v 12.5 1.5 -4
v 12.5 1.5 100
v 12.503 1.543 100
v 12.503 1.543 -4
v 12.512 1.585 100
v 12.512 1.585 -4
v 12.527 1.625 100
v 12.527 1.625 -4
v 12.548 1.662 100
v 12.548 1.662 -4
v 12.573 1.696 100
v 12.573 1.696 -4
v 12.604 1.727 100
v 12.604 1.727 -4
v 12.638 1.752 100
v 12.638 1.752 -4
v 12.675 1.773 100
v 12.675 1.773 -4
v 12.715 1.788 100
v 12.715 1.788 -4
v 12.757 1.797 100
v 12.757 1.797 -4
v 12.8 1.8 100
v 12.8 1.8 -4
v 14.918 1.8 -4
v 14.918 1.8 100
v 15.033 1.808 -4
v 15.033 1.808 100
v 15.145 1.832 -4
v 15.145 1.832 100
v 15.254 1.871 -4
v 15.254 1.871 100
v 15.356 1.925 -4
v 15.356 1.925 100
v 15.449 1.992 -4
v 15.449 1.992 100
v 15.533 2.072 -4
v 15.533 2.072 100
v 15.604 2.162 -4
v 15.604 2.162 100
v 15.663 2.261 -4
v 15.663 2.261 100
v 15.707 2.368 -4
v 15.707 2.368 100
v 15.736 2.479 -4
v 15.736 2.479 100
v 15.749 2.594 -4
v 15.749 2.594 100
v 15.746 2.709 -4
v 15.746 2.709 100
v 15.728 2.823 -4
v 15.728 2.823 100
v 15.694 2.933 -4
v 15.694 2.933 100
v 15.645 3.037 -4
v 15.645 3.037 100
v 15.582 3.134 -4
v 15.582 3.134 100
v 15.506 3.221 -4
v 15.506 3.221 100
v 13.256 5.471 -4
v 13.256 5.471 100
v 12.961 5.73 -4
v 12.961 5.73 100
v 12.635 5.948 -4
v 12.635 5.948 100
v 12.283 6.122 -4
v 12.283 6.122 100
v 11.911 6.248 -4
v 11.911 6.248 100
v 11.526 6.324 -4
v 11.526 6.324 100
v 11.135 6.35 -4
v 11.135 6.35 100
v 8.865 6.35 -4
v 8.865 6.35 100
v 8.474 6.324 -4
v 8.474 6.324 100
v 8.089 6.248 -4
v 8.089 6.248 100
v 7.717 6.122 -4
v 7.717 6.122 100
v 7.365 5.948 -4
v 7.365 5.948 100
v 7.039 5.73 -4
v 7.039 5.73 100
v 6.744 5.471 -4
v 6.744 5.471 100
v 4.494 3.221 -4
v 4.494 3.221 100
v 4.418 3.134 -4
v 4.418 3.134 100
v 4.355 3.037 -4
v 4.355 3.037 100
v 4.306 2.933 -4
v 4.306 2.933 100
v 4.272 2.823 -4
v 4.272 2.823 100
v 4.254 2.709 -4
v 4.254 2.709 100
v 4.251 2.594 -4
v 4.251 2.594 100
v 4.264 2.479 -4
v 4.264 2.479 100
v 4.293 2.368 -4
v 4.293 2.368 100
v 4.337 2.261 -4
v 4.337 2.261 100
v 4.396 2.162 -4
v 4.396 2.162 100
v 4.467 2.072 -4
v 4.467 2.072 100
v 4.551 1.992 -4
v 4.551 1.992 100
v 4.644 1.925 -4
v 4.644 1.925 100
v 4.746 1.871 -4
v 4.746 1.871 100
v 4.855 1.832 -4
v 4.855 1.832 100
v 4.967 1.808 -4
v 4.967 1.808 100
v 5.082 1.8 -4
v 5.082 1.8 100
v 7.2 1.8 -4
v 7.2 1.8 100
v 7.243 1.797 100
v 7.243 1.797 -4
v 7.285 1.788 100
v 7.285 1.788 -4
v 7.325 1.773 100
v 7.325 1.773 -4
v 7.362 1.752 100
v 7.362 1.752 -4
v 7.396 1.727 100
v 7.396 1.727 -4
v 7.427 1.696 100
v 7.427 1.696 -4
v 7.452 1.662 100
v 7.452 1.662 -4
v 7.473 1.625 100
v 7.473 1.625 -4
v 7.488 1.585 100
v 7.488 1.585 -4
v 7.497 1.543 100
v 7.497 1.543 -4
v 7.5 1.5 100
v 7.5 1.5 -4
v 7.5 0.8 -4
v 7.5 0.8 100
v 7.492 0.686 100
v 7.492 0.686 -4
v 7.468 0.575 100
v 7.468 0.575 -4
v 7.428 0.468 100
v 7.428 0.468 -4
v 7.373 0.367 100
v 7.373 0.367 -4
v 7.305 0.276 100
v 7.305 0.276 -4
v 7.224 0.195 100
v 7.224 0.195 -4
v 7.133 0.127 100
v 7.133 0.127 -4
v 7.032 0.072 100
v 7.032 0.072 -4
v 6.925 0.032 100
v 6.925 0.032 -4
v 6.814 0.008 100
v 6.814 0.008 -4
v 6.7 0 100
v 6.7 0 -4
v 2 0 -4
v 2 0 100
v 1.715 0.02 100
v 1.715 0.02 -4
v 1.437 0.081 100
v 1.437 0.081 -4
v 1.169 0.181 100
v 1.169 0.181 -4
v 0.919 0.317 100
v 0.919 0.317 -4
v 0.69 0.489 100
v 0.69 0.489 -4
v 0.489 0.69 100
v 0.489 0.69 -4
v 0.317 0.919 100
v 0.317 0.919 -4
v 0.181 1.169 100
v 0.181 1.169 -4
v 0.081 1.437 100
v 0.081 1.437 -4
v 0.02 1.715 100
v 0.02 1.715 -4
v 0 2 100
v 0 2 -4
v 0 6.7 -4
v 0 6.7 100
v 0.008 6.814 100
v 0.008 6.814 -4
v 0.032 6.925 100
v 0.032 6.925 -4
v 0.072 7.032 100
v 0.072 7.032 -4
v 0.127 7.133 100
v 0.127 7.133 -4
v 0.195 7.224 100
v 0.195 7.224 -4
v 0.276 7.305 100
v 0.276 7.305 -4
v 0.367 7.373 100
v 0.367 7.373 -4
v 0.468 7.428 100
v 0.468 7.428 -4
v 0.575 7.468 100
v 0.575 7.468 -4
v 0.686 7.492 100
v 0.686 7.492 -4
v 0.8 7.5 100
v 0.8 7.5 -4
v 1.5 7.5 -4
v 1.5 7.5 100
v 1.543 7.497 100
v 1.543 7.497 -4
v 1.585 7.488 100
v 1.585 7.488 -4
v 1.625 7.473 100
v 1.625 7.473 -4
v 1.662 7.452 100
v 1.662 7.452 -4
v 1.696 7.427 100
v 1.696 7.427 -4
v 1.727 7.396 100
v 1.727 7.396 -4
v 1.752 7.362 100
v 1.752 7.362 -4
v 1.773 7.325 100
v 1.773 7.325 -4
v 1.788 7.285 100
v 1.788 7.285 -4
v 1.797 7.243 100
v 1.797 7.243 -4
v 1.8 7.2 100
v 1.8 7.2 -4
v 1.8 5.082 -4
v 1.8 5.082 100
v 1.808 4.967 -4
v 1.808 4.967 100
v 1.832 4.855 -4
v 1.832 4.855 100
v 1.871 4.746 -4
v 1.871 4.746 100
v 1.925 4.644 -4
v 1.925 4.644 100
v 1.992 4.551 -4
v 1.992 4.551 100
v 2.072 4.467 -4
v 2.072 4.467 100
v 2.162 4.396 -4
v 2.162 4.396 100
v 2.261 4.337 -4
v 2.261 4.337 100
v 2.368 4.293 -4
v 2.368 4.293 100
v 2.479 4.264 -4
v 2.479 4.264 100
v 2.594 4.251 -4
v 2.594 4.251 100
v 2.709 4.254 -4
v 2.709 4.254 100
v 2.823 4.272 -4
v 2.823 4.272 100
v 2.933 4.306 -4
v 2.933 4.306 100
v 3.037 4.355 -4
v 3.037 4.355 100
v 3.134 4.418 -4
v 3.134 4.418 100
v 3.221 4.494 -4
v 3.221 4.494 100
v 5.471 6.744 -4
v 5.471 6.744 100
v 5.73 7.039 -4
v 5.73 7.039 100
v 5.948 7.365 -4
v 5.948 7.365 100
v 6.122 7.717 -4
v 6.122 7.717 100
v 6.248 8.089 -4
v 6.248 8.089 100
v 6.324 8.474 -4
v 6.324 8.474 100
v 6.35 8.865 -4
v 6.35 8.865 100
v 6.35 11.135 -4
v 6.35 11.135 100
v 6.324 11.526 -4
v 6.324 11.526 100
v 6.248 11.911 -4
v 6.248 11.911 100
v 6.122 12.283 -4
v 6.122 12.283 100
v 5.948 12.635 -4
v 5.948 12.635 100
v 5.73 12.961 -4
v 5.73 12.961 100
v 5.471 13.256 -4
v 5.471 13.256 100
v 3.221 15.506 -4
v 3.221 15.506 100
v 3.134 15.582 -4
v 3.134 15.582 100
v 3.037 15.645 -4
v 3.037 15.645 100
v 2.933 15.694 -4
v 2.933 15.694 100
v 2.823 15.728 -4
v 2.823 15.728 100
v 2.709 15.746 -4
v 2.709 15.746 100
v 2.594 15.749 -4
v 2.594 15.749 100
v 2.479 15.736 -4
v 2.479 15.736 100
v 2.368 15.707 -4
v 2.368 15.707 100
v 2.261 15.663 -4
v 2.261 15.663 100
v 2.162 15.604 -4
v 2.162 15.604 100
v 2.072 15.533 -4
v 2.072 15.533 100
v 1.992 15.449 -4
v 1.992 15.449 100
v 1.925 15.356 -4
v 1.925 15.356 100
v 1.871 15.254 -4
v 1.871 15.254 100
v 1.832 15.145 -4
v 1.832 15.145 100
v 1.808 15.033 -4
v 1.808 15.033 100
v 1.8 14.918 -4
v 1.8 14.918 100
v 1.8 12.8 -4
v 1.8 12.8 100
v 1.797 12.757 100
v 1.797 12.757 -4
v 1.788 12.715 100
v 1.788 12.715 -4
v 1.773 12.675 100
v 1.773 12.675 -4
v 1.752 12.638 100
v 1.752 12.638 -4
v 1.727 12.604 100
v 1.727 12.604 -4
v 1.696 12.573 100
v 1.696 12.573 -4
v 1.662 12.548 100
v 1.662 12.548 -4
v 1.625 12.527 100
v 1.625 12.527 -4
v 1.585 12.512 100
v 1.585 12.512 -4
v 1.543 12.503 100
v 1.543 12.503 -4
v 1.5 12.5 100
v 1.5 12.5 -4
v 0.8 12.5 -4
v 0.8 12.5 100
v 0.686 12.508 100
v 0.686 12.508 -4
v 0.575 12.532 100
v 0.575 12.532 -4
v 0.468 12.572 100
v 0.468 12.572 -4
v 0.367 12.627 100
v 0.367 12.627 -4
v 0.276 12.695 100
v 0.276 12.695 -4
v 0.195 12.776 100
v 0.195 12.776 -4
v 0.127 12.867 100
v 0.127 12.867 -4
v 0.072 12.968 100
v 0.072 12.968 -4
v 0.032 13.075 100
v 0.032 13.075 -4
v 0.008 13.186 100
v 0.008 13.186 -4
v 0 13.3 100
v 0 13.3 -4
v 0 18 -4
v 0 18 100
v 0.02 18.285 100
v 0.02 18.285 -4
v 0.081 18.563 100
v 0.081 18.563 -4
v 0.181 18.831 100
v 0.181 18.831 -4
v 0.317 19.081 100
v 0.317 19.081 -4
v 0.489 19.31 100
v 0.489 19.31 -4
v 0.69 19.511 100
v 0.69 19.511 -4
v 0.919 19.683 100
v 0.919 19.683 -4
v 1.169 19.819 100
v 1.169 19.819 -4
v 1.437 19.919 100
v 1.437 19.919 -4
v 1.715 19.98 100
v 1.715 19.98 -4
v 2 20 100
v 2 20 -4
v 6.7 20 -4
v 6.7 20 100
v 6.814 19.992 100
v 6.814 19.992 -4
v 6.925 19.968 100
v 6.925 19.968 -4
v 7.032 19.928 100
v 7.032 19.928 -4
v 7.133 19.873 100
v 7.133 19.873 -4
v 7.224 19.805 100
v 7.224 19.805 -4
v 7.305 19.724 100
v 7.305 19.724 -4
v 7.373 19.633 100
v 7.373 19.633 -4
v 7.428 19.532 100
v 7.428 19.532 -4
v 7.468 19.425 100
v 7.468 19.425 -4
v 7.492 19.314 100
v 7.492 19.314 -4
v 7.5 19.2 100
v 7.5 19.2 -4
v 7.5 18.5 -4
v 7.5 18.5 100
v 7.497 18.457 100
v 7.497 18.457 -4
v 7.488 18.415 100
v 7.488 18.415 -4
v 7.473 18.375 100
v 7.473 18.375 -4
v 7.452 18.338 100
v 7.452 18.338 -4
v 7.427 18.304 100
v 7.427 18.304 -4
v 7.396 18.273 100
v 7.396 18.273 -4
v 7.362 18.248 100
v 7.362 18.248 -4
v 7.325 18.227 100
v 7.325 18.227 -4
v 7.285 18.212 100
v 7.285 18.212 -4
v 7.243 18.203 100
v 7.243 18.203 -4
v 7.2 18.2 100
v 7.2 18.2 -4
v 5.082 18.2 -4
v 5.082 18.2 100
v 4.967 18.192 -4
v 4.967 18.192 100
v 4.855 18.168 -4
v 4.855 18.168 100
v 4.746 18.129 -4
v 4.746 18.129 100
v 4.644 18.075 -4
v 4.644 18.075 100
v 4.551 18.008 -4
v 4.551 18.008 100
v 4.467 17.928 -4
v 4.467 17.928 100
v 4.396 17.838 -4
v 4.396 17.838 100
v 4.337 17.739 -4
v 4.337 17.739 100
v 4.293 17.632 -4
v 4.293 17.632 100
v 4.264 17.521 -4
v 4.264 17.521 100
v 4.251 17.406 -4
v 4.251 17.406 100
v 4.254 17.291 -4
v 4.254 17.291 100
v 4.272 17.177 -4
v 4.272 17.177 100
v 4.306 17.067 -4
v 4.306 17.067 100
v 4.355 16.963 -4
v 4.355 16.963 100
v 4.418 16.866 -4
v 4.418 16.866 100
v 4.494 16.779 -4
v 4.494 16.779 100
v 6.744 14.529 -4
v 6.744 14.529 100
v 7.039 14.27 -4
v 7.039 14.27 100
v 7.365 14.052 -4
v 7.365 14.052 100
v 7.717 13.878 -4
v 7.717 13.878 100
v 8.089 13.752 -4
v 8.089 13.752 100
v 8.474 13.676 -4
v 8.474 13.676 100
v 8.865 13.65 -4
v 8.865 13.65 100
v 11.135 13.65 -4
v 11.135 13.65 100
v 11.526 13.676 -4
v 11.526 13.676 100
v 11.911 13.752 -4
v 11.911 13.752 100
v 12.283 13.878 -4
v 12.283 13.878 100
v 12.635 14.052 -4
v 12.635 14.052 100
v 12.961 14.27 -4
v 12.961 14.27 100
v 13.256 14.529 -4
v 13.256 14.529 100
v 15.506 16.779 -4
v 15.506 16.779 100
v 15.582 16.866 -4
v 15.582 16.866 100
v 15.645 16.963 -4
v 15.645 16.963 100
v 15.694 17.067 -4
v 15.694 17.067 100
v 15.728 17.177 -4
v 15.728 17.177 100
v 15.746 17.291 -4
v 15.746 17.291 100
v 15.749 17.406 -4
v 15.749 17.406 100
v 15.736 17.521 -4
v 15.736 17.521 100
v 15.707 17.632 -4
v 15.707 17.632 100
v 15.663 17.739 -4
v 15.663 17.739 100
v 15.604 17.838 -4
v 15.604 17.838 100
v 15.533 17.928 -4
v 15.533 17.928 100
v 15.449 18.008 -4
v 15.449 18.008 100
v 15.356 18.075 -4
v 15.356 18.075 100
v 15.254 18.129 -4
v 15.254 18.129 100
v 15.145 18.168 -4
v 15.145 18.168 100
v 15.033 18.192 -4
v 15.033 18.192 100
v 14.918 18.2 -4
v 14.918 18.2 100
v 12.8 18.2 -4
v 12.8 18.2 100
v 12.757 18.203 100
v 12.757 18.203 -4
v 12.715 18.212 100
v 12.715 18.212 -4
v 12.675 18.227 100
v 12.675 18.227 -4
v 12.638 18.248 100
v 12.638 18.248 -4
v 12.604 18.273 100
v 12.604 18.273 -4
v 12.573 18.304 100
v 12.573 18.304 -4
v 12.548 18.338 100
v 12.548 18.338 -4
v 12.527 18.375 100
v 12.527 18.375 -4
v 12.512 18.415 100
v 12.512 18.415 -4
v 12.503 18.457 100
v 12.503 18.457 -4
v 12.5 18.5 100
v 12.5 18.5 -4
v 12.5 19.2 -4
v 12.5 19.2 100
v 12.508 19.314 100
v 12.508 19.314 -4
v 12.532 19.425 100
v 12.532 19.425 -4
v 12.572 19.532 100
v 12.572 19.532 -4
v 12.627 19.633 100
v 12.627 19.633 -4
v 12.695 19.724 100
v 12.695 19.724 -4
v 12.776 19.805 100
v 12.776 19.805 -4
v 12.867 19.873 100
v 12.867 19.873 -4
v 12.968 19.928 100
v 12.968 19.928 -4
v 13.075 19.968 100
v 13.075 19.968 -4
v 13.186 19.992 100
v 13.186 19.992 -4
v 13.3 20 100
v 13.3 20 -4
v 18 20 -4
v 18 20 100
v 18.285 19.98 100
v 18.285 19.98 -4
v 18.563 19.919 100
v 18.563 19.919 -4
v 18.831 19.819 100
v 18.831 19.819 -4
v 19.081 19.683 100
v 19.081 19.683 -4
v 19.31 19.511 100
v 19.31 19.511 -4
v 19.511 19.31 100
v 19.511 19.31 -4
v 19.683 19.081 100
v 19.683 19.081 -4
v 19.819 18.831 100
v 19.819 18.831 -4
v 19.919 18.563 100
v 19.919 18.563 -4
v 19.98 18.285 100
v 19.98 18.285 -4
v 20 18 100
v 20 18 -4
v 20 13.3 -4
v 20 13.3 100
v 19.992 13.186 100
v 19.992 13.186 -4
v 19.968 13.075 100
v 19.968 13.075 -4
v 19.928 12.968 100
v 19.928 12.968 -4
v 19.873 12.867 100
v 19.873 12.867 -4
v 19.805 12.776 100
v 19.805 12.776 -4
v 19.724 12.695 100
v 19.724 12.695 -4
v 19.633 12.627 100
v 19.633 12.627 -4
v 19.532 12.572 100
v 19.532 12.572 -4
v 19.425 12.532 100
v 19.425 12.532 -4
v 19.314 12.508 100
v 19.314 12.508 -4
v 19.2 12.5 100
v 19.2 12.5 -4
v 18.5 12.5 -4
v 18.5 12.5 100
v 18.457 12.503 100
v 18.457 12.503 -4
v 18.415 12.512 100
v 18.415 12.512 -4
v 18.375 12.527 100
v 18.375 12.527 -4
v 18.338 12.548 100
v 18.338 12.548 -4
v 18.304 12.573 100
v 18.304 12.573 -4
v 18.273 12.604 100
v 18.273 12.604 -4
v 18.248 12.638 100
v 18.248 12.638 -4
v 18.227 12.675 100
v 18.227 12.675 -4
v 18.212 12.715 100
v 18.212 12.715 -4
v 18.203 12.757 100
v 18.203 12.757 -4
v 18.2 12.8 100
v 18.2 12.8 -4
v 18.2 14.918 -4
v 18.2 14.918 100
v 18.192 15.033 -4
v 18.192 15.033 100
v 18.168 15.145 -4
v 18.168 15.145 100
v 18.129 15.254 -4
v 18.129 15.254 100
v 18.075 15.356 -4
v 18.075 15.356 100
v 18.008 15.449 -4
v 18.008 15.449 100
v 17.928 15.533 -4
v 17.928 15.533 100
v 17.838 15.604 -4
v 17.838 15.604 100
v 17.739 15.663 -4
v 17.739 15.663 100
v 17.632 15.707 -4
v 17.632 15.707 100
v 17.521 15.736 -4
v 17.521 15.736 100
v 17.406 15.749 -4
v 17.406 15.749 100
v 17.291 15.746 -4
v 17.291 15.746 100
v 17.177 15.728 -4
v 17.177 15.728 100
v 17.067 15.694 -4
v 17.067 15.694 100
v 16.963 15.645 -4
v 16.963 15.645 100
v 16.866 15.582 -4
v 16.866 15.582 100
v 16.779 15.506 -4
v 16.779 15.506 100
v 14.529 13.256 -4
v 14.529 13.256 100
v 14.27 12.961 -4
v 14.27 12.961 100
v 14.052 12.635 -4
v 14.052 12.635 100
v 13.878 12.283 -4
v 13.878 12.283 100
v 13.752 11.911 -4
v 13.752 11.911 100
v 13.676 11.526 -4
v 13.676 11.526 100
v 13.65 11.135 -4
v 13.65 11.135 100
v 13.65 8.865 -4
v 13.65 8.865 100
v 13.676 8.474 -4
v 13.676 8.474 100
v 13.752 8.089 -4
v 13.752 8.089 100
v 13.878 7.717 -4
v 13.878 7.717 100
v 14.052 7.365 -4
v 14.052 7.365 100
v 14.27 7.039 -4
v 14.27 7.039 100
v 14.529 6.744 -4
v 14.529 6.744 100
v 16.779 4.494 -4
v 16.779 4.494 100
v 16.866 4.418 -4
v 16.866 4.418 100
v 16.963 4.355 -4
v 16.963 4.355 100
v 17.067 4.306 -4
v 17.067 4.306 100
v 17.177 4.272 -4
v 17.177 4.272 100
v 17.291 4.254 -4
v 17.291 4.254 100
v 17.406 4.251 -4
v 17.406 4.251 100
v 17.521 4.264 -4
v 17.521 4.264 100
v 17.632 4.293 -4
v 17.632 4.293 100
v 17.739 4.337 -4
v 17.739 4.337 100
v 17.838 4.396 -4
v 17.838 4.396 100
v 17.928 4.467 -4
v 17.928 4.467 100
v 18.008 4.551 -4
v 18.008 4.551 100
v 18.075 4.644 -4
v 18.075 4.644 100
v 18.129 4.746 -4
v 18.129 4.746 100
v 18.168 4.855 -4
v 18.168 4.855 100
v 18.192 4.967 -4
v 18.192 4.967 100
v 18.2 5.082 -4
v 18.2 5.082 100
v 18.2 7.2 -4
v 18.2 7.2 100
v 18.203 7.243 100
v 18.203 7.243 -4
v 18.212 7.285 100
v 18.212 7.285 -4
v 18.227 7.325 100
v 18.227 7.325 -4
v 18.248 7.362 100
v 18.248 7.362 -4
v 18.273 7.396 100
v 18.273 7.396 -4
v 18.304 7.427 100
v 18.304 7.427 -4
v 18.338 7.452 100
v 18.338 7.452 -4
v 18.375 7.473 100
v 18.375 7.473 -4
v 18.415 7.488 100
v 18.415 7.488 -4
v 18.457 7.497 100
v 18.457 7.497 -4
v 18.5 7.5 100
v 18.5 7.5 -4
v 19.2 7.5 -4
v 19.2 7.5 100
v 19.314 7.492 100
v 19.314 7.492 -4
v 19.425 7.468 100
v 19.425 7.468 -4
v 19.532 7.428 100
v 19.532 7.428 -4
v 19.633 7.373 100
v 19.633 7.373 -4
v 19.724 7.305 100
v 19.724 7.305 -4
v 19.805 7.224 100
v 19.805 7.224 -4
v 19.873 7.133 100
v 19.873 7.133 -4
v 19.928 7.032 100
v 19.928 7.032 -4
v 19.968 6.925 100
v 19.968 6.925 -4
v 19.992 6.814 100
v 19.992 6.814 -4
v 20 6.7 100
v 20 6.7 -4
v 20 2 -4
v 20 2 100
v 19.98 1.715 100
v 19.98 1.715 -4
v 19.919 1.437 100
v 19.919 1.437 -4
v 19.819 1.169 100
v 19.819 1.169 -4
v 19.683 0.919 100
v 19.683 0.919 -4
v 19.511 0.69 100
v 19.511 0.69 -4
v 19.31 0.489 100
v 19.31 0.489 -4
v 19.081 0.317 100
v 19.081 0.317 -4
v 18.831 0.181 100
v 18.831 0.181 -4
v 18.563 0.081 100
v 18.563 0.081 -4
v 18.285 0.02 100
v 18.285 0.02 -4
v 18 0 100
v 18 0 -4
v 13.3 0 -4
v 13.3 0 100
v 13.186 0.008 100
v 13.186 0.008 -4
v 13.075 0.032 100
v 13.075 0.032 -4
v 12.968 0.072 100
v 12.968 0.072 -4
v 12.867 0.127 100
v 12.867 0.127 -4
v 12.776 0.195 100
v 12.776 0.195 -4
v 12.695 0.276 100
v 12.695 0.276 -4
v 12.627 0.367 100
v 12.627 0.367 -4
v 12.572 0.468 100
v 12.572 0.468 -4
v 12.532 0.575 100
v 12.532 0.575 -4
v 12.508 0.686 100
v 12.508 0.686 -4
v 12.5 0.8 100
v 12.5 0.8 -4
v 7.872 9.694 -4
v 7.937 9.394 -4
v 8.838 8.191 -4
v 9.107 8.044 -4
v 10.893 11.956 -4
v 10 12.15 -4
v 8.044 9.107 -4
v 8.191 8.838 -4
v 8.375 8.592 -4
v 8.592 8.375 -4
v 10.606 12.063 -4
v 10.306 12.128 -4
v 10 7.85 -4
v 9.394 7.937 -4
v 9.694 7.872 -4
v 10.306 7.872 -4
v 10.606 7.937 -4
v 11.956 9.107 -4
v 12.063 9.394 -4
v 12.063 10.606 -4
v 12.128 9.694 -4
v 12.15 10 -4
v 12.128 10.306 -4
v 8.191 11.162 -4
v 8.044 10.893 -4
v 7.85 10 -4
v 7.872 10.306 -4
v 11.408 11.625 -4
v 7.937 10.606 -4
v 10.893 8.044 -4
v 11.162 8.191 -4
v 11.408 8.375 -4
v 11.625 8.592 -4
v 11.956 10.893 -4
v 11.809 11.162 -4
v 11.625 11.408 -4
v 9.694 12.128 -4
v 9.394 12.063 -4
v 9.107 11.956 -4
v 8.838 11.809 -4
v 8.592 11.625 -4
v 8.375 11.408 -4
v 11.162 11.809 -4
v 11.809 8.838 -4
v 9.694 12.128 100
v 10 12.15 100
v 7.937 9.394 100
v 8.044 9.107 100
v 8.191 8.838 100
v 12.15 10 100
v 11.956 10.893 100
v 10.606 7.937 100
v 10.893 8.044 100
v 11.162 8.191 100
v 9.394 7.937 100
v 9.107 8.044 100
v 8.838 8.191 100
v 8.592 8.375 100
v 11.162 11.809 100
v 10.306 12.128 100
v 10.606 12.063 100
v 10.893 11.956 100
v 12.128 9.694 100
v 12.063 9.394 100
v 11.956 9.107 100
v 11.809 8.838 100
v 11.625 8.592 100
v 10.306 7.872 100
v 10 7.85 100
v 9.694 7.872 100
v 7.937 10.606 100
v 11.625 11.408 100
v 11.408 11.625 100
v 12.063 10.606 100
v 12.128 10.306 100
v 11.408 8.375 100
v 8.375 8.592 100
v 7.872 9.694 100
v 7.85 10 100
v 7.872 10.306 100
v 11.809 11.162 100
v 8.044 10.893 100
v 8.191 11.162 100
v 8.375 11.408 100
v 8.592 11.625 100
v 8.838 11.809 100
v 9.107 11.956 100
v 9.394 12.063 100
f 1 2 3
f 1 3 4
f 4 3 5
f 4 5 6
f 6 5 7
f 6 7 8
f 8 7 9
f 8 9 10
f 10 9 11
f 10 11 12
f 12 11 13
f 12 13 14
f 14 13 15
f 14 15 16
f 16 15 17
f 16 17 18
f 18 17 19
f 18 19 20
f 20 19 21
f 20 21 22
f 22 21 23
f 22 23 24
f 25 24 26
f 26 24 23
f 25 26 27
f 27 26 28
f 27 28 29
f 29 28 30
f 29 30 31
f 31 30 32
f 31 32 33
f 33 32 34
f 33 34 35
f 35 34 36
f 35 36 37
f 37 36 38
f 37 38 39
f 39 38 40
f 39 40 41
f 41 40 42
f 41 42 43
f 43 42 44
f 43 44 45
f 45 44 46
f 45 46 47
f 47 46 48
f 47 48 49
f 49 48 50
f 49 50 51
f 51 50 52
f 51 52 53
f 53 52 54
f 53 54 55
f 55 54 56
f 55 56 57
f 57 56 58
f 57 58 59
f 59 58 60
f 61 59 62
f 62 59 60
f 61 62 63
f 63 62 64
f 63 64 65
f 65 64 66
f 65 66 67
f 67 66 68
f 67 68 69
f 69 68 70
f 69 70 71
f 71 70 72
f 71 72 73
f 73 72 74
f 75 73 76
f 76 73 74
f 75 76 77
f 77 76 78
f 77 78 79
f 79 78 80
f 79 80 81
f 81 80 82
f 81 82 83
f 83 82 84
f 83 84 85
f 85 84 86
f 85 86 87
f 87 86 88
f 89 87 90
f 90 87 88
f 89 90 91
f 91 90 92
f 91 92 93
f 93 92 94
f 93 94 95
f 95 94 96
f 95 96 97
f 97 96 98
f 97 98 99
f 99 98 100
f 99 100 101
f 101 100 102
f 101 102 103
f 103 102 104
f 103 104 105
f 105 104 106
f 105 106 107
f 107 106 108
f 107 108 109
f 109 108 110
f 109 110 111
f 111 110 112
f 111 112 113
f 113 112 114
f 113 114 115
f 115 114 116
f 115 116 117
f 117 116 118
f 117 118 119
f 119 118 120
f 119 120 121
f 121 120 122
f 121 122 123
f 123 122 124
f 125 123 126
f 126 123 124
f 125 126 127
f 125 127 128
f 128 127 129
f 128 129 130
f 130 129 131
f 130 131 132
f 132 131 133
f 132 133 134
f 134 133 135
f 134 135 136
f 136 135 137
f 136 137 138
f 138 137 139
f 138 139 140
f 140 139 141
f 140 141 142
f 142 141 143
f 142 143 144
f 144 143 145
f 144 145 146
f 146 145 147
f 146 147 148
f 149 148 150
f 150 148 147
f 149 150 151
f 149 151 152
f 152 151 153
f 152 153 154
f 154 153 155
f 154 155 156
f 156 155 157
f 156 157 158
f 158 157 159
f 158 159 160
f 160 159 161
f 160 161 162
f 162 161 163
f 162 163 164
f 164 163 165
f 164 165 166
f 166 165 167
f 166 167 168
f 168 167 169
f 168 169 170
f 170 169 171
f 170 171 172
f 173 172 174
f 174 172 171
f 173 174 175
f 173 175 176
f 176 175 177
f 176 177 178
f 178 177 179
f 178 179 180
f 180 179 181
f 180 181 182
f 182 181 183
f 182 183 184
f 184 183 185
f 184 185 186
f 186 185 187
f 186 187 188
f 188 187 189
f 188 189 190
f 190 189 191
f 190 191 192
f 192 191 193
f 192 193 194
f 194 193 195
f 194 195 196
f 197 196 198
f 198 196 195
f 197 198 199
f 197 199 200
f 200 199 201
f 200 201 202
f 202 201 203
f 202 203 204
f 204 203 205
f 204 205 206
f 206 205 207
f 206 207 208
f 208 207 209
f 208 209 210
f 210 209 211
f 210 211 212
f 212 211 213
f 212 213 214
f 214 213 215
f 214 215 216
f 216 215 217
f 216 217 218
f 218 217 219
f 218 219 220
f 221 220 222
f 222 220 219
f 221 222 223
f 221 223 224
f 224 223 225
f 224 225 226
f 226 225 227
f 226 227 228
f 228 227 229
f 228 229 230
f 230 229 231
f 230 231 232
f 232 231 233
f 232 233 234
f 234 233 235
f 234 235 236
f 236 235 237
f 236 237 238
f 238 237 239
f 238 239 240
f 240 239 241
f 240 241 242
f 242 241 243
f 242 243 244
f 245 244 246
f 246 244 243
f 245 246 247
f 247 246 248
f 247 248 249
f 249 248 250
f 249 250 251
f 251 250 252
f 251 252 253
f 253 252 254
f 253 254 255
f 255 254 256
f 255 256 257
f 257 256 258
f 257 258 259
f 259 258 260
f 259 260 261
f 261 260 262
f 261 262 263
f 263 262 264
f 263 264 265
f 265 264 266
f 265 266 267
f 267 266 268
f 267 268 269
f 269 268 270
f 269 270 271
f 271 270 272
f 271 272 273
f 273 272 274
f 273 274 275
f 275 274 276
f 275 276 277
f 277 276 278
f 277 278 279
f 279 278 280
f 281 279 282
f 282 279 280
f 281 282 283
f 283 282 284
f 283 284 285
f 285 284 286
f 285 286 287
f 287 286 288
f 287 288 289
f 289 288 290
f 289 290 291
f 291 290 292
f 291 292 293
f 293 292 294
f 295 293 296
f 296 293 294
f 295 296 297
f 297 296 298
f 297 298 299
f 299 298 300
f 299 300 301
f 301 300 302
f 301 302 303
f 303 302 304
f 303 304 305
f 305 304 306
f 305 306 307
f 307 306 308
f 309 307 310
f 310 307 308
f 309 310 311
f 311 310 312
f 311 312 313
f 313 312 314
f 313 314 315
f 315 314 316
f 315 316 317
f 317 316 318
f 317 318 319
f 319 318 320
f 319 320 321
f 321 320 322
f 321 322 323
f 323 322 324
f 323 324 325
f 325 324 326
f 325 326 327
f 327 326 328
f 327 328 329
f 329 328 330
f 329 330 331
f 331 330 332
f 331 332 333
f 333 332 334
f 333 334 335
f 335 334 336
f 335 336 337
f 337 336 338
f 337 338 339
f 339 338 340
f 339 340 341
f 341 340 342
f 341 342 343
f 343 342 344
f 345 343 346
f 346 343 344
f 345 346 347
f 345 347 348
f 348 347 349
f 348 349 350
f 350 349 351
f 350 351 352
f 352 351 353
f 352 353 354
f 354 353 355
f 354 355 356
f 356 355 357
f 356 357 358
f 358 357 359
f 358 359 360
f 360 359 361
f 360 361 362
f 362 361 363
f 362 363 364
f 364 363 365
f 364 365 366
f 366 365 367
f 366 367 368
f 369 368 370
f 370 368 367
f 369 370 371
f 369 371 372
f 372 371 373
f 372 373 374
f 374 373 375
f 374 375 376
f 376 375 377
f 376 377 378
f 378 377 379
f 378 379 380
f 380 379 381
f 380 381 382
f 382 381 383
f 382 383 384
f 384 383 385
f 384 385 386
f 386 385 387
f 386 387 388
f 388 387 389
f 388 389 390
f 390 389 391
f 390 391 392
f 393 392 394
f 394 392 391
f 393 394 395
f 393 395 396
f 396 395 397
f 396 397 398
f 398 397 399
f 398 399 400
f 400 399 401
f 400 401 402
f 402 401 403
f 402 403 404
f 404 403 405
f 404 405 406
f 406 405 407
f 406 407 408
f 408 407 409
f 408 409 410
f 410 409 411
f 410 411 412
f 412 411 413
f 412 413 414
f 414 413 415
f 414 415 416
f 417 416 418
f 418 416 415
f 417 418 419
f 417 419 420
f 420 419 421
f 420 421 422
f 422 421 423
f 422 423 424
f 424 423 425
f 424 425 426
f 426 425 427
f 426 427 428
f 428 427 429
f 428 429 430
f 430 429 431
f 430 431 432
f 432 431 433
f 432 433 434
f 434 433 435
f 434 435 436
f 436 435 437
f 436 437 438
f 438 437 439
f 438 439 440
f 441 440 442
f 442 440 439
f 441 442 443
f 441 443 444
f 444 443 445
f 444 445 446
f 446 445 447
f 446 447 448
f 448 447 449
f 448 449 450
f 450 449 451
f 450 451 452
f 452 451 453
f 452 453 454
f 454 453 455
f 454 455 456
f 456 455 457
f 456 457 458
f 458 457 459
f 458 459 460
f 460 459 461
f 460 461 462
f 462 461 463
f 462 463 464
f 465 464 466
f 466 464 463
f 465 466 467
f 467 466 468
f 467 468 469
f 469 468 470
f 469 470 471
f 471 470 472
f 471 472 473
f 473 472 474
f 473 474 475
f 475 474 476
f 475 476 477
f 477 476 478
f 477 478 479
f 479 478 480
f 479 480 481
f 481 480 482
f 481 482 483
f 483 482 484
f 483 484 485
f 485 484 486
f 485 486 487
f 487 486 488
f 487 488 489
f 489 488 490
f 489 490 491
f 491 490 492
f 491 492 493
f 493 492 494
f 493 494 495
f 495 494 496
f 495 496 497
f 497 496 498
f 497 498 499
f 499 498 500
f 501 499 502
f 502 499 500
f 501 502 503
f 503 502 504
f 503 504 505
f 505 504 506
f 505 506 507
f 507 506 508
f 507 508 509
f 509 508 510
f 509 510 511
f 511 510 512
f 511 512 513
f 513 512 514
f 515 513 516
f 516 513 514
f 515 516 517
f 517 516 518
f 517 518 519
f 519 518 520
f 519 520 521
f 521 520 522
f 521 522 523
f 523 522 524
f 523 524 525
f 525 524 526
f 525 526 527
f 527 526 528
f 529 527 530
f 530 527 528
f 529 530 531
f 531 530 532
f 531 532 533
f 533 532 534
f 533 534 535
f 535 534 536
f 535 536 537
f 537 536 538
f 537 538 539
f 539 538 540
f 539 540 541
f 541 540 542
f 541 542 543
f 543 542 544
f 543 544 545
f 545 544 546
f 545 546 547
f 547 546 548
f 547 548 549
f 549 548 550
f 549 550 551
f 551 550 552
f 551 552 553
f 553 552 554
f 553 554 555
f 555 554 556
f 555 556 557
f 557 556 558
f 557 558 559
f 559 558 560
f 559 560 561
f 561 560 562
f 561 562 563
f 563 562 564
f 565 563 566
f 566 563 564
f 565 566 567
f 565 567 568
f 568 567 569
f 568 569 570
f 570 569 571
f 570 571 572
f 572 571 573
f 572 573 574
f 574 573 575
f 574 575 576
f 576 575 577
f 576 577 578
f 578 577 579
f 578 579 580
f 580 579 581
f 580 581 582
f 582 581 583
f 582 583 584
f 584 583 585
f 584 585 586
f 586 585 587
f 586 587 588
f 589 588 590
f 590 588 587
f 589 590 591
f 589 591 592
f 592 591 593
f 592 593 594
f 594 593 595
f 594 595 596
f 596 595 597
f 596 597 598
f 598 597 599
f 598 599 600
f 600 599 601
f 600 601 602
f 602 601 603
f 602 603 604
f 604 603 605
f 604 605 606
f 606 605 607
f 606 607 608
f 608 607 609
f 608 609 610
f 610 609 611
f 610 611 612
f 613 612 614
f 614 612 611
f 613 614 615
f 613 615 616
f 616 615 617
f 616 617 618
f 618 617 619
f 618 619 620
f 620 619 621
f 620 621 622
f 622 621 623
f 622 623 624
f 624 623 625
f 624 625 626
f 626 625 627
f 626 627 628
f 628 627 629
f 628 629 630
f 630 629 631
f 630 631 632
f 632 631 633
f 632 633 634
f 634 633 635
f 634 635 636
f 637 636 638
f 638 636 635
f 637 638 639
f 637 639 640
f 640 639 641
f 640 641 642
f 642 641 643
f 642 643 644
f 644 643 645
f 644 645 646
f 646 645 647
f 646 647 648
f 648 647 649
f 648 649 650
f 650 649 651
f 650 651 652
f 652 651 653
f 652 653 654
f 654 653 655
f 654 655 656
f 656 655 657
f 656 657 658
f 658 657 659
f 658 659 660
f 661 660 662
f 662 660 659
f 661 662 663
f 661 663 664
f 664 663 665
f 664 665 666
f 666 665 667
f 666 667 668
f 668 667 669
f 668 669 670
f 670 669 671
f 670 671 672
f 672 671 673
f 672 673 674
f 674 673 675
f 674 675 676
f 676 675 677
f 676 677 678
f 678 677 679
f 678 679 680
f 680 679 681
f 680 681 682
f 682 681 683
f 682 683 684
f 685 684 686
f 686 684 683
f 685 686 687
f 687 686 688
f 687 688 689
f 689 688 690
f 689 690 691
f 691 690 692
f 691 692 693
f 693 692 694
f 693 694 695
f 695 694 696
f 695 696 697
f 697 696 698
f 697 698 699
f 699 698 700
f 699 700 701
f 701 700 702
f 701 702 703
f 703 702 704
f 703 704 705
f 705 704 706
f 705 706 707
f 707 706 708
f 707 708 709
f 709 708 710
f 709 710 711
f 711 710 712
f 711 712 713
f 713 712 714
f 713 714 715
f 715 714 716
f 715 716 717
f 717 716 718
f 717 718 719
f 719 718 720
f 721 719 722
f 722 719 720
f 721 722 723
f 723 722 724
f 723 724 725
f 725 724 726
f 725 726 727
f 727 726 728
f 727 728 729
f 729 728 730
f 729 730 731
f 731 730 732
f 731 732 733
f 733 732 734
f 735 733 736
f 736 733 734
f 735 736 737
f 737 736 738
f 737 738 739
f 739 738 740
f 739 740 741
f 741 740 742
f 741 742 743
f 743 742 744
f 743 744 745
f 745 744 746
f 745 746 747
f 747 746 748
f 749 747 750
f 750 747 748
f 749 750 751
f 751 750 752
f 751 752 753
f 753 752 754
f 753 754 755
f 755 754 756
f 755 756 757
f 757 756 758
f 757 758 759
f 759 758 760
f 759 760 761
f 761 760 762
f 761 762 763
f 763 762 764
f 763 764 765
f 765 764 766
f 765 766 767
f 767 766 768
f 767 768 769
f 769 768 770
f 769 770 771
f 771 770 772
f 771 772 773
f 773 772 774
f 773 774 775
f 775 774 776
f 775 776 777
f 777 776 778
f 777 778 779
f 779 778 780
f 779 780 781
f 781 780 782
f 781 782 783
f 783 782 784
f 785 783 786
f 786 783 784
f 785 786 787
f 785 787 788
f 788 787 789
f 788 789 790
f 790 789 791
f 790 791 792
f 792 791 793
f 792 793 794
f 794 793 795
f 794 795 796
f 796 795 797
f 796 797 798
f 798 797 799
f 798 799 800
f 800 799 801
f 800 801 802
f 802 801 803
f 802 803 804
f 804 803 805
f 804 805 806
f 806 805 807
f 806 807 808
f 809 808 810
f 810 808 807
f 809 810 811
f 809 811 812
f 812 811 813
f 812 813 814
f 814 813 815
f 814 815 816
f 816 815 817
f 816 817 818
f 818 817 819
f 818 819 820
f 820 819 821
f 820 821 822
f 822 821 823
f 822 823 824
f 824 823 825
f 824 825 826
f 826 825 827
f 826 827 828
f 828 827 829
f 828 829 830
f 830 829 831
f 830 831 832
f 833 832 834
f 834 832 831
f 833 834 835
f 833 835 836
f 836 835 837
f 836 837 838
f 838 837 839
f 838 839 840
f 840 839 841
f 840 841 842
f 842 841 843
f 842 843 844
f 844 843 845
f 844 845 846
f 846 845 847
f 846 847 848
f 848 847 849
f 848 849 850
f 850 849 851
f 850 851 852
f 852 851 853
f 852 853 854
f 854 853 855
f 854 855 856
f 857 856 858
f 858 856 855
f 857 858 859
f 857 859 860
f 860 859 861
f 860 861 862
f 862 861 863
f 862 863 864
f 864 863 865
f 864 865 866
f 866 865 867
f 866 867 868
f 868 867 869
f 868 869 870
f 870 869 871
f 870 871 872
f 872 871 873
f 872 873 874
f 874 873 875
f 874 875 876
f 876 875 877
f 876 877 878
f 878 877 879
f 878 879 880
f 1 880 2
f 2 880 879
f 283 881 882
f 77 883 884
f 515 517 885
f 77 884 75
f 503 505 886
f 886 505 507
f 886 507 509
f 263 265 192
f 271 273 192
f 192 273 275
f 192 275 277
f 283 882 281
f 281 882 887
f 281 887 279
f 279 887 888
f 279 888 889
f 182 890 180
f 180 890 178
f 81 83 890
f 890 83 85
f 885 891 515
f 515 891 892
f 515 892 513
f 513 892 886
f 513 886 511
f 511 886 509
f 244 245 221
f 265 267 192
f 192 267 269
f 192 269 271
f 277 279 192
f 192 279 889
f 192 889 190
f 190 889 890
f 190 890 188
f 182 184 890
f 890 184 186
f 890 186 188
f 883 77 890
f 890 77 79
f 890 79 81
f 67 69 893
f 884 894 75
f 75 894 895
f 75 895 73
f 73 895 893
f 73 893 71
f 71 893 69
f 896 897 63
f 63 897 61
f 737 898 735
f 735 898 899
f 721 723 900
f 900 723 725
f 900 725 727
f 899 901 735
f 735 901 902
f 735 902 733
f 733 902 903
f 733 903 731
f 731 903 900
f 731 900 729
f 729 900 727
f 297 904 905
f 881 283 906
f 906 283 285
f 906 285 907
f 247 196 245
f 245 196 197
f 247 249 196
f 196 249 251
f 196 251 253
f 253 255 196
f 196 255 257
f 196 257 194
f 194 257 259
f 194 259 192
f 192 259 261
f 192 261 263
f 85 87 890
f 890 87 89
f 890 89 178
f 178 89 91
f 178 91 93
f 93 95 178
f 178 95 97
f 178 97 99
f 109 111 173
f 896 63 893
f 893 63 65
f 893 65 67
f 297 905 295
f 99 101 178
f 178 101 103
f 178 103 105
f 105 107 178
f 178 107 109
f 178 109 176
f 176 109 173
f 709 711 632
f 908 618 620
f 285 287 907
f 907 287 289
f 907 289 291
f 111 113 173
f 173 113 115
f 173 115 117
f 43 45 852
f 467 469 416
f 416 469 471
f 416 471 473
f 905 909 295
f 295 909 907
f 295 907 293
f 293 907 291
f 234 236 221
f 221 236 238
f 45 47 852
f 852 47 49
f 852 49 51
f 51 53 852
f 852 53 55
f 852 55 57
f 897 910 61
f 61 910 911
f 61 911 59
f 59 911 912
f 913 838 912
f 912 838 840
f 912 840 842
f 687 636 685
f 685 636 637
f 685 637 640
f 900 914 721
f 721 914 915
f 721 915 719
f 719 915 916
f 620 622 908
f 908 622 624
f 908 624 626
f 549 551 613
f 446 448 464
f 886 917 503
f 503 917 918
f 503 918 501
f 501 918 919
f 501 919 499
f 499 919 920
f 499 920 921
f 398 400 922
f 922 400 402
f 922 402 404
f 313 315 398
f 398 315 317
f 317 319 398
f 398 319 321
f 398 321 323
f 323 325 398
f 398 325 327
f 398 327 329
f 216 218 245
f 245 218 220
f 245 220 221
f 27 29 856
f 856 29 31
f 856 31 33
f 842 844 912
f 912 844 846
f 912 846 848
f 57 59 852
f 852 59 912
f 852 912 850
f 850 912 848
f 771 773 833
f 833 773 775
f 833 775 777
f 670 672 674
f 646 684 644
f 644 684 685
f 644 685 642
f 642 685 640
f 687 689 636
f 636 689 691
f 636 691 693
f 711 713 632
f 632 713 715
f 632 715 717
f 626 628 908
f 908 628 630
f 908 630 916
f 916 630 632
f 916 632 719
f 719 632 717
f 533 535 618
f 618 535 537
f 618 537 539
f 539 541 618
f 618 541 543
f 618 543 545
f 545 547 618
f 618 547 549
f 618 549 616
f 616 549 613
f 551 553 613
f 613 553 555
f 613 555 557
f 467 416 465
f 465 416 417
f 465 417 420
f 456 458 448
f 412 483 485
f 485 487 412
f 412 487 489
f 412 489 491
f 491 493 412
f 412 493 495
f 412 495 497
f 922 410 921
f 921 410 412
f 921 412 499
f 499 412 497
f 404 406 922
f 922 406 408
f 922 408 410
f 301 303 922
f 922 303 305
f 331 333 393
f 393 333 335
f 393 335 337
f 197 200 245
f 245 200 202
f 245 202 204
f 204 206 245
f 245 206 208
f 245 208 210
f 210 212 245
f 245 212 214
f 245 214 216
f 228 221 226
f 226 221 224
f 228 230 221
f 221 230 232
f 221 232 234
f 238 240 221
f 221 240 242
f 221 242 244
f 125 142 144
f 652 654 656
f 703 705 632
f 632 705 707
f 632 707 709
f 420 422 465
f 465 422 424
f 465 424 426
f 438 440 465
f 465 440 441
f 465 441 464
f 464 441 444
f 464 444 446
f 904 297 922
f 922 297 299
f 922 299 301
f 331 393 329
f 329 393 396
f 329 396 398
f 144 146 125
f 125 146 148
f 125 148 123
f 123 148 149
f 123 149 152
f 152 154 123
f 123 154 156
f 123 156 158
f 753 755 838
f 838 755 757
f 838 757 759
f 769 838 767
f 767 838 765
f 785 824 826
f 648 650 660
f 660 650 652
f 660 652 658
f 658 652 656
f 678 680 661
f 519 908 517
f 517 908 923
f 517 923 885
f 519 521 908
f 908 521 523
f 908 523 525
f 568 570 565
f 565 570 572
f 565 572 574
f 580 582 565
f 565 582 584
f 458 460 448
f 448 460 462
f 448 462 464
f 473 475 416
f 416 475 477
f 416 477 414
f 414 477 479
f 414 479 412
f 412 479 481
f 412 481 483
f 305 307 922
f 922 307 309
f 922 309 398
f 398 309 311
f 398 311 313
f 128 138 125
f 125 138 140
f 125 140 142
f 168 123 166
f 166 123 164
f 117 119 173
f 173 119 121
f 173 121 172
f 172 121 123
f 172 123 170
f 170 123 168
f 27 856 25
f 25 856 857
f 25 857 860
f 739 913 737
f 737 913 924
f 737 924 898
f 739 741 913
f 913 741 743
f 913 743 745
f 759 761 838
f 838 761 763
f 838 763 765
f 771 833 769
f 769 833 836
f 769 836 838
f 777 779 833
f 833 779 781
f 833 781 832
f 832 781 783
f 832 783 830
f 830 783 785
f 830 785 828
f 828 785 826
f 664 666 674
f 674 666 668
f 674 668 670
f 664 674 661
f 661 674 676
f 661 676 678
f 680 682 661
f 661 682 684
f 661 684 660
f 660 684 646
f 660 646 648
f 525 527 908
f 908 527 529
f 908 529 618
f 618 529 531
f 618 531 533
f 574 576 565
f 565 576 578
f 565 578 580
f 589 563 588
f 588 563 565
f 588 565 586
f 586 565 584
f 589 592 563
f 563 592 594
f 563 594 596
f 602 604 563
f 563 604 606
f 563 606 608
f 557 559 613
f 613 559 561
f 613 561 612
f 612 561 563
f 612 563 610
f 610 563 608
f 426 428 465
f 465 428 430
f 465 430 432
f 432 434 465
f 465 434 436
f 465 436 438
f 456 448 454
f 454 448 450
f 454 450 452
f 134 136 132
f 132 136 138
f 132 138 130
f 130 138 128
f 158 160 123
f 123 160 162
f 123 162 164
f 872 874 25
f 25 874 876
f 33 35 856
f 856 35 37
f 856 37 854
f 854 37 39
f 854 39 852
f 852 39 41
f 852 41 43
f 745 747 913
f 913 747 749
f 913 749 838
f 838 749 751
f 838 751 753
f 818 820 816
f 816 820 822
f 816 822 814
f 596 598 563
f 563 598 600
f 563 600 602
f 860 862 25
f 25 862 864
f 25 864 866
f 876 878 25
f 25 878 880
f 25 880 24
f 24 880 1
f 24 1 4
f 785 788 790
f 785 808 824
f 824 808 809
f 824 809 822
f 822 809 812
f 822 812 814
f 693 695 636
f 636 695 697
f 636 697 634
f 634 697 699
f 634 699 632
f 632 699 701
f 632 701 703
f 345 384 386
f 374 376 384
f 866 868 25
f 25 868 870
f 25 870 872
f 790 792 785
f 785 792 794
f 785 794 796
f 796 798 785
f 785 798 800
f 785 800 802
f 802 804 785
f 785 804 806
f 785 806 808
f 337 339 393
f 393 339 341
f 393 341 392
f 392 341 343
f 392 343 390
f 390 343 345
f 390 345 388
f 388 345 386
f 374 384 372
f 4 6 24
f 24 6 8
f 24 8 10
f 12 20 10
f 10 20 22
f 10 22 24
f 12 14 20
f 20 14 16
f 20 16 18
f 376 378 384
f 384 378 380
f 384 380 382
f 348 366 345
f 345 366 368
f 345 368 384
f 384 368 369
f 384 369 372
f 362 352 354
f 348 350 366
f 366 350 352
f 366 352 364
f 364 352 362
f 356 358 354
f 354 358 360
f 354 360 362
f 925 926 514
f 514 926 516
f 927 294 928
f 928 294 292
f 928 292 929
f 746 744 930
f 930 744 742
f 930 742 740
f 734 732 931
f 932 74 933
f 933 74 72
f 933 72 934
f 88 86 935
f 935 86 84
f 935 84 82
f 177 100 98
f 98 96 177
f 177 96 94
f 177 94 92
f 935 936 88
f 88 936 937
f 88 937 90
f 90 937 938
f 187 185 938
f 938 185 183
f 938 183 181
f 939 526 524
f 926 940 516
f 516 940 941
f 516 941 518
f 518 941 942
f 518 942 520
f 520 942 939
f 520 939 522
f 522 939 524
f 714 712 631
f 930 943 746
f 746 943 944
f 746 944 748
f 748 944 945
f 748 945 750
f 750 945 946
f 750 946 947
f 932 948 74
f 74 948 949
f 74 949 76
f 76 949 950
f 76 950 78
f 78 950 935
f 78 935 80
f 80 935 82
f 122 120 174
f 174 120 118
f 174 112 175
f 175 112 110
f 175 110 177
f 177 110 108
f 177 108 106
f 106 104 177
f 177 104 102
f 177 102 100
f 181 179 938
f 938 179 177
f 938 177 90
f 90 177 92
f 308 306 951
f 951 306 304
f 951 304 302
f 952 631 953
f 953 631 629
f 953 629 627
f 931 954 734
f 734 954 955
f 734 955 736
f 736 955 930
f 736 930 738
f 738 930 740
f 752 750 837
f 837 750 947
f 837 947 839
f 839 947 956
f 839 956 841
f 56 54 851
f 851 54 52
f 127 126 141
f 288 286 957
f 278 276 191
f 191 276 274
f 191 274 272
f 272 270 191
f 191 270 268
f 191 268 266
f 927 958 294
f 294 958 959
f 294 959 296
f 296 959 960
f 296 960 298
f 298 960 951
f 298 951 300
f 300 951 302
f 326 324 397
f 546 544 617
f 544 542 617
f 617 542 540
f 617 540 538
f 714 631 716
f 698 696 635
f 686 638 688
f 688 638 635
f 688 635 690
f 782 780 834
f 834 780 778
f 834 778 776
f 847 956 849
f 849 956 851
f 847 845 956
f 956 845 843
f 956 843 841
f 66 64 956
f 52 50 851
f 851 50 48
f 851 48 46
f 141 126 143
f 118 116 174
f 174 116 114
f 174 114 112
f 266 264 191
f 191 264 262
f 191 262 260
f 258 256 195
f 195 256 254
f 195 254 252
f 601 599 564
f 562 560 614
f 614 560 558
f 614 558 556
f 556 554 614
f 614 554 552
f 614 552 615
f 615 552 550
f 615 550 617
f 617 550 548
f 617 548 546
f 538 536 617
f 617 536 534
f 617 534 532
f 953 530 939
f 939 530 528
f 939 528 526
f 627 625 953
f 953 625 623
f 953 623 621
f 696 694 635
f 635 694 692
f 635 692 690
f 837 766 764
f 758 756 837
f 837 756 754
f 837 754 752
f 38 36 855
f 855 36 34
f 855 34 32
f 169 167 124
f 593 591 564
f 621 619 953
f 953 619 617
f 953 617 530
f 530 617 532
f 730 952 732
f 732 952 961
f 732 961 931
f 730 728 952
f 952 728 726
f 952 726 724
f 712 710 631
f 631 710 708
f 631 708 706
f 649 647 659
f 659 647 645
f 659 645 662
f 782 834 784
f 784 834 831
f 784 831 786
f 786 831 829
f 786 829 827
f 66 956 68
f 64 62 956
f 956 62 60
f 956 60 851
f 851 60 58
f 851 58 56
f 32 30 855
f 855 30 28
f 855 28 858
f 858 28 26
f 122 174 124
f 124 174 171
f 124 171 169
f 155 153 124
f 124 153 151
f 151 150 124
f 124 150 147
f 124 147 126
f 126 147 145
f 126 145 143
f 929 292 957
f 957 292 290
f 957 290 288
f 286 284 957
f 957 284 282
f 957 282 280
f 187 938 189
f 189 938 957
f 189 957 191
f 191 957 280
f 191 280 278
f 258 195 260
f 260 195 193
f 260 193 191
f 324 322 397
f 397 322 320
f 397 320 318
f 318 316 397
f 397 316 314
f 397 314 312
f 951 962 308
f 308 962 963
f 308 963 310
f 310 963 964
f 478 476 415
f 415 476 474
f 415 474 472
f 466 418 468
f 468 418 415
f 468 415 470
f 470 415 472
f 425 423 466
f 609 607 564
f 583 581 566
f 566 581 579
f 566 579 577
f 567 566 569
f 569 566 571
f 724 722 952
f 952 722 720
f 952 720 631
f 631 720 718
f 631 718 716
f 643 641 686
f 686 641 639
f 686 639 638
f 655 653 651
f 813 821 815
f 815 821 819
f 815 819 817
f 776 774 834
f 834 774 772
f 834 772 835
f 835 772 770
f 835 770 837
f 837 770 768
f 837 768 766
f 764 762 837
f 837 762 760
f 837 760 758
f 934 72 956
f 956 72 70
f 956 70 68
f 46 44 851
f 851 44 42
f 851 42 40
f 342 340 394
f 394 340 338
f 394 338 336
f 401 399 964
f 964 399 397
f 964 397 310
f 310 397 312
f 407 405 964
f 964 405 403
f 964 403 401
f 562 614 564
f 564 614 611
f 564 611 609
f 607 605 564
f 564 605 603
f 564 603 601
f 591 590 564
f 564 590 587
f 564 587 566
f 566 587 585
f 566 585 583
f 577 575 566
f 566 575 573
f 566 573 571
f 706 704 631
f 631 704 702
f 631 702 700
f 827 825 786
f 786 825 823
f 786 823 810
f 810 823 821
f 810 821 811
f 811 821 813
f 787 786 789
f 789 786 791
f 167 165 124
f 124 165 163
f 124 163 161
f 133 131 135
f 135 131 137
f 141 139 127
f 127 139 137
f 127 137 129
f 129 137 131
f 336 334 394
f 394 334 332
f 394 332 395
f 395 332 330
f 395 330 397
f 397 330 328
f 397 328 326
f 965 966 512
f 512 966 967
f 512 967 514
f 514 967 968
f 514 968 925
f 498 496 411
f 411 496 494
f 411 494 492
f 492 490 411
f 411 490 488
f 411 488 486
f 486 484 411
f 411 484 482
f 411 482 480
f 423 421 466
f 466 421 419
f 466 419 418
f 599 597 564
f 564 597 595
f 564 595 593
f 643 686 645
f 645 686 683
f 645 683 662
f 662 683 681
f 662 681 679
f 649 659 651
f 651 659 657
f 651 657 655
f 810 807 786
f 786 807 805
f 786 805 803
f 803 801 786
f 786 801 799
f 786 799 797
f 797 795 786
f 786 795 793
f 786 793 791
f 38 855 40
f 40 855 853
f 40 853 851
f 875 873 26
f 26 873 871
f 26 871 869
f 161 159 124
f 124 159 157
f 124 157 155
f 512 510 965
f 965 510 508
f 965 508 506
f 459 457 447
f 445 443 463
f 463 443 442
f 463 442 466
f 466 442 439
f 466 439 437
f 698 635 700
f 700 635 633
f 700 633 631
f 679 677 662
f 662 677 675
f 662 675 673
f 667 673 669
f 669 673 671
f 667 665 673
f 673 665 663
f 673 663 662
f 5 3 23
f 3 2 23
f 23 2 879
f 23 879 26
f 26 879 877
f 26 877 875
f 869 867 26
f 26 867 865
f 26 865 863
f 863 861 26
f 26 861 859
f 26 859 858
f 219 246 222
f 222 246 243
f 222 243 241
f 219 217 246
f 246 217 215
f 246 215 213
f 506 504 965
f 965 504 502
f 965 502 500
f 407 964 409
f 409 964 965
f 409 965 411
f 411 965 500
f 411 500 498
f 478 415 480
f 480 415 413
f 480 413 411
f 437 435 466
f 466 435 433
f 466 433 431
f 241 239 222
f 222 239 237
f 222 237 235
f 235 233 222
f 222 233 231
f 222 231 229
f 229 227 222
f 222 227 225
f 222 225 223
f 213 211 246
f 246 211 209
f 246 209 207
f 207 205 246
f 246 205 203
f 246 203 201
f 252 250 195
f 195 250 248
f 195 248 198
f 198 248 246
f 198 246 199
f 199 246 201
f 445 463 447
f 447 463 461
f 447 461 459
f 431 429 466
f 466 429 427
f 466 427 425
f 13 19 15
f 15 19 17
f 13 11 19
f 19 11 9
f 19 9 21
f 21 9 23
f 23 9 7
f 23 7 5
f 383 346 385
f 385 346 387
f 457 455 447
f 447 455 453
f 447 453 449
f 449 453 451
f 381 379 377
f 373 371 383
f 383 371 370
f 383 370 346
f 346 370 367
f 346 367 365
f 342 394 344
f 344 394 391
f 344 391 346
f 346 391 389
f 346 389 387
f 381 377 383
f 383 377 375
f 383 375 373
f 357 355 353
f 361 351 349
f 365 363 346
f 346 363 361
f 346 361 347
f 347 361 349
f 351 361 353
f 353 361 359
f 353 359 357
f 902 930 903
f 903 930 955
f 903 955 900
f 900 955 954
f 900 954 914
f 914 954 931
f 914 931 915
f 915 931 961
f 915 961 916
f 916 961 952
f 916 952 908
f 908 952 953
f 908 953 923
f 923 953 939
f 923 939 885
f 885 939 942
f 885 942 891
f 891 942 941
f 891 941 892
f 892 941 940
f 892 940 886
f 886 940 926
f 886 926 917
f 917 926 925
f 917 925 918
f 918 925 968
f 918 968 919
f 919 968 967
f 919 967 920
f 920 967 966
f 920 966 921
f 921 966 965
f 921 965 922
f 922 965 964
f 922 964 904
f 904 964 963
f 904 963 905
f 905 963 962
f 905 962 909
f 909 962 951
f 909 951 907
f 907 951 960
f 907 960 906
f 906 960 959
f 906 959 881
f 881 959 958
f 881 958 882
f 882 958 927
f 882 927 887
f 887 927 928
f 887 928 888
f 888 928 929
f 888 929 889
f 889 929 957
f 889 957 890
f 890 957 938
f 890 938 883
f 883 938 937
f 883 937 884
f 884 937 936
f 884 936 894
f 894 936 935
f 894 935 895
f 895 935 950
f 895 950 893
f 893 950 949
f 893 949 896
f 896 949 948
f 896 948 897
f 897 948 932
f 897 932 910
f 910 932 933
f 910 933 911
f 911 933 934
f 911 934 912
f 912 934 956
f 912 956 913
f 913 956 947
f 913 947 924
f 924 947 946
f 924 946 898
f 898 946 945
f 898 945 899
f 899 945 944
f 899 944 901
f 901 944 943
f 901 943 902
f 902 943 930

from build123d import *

# Parameters (mm, degrees)
SKIZZE1_R                       = 2.15
AUFSATZ_LINEAR_AUSTRAGEN1_DEPTH = 104


with BuildPart() as part:
    # Skizze1 → Aufsatz-Linear austragen1 (new body)
    with BuildSketch(Plane.XY.offset(100)):
        with BuildLine():
            Line((12.499999989, 1.499999999), (12.499999989, 0.800000002))
            ThreePointArc((12.499999989, 0.800000002), (12.734314564, 0.234314576), (13.299999991, 0))
            Line((13.299999991, 0), (18, 0))
            ThreePointArc((18, 0), (19.414213562, 0.585786438), (20, 2))
            Line((20, 2), (20, 6.700000003))
            ThreePointArc((20, 6.700000003), (19.765685425, 7.265685427), (19.2, 7.500000003))
            Line((19.2, 7.500000003), (18.499999995, 7.500000003))
            ThreePointArc((18.499999995, 7.500000003), (18.287867961, 7.412132037), (18.199999995, 7.200000003))
            Line((18.199999995, 7.200000003), (18.199999995, 5.082411607))
            ThreePointArc((18.199999995, 5.082411607), (17.686138517, 4.313363558), (16.778984491, 4.493807713))
            Line((16.778984491, 4.493807713), (14.528679651, 6.744112553))
            ThreePointArc((14.528679651, 6.744112553), (13.878361397, 7.717382599), (13.649999995, 8.865432896))
            Line((13.649999995, 8.865432896), (13.649999995, 11.134567106))
            ThreePointArc((13.649999995, 11.134567106), (13.878361397, 12.282617403), (14.528679651, 13.255887449))
            Line((14.528679651, 13.255887449), (16.778984493, 15.506192291))
            ThreePointArc((16.778984493, 15.506192291), (17.686138518, 15.686636446), (18.199999995, 14.917588398))
            Line((18.199999995, 14.917588398), (18.199999995, 12.800000001))
            ThreePointArc((18.199999995, 12.800000001), (18.287867961, 12.587867966), (18.499999996, 12.5))
            Line((18.499999996, 12.5), (19.199999998, 12.5))
            ThreePointArc((19.199999998, 12.5), (19.765685424, 12.734314576), (20, 13.300000003))
            Line((20, 13.300000003), (20, 18))
            ThreePointArc((20, 18), (19.414213562, 19.414213562), (18, 20))
            Line((18, 20), (13.299999989, 20))
            ThreePointArc((13.299999989, 20), (12.734314564, 19.765685425), (12.499999989, 19.2))
            Line((12.499999989, 19.2), (12.499999989, 18.499999999))
            ThreePointArc((12.499999989, 18.499999999), (12.587867954, 18.287867964), (12.799999989, 18.199999999))
            Line((12.799999989, 18.199999999), (14.917588395, 18.199999999))
            ThreePointArc((14.917588395, 18.199999999), (15.686636445, 17.68613852), (15.50619229, 16.778984493))
            Line((15.50619229, 16.778984493), (13.255887454, 14.528679658))
            ThreePointArc((13.255887454, 14.528679658), (12.282617408, 13.878361404), (11.134567111, 13.650000002))
            Line((11.134567111, 13.650000002), (8.865432888, 13.650000002))
            ThreePointArc((8.865432888, 13.650000002), (7.717382592, 13.878361404), (6.744112546, 14.528679658))
            Line((6.744112546, 14.528679658), (4.493807706, 16.778984498))
            ThreePointArc((4.493807706, 16.778984498), (4.313363551, 17.686138522), (5.082411599, 18.199999999))
            Line((5.082411599, 18.199999999), (7.199999999, 18.199999999))
            ThreePointArc((7.199999999, 18.199999999), (7.412132034, 18.287867965), (7.5, 18.5))
            Line((7.5, 18.5), (7.5, 19.199999998))
            ThreePointArc((7.5, 19.199999998), (7.265685424, 19.765685424), (6.699999997, 20))
            Line((6.699999997, 20), (2, 20))
            ThreePointArc((2, 20), (0.585786438, 19.414213562), (0, 18))
            Line((0, 18), (0, 13.3))
            ThreePointArc((0, 13.3), (0.234314575, 12.734314575), (0.8, 12.5))
            Line((0.8, 12.5), (1.500000004, 12.5))
            ThreePointArc((1.500000004, 12.5), (1.712132038, 12.587867966), (1.800000004, 12.8))
            Line((1.800000004, 12.8), (1.800000004, 14.917588391))
            ThreePointArc((1.800000004, 14.917588391), (2.313861482, 15.68663644), (3.221015508, 15.506192285))
            Line((3.221015508, 15.506192285), (5.471320345, 13.255887449))
            ThreePointArc((5.471320345, 13.255887449), (6.121638599, 12.282617402), (6.350000001, 11.134567106))
            Line((6.350000001, 11.134567106), (6.350000001, 8.865432891))
            ThreePointArc((6.350000001, 8.865432891), (6.121638599, 7.717382594), (5.471320345, 6.744112548))
            Line((5.471320345, 6.744112548), (3.221015505, 4.493807708))
            ThreePointArc((3.221015505, 4.493807708), (2.313861481, 4.313363554), (1.800000004, 5.082411601))
            Line((1.800000004, 5.082411601), (1.800000004, 7.200000001))
            ThreePointArc((1.800000004, 7.200000001), (1.712132038, 7.412132036), (1.500000003, 7.500000002))
            Line((1.500000003, 7.500000002), (0.800000003, 7.500000002))
            ThreePointArc((0.800000003, 7.500000002), (0.234314576, 7.265685427), (0, 6.7))
            Line((0, 6.7), (0, 2))
            ThreePointArc((0, 2), (0.585786438, 0.585786438), (2, 0))
            Line((2, 0), (6.7, 0))
            ThreePointArc((6.7, 0), (7.265685425, 0.234314575), (7.5, 0.8))
            Line((7.5, 0.8), (7.5, 1.5))
            ThreePointArc((7.5, 1.5), (7.412132034, 1.712132034), (7.2, 1.8))
            Line((7.2, 1.8), (5.0824116, 1.8))
            ThreePointArc((5.0824116, 1.8), (4.313363551, 2.313861478), (4.493807706, 3.221015504))
            Line((4.493807706, 3.221015504), (6.744112546, 5.471320344))
            ThreePointArc((6.744112546, 5.471320344), (7.717382592, 6.121638598), (8.865432889, 6.35))
            Line((8.865432889, 6.35), (11.134567106, 6.35))
            ThreePointArc((11.134567106, 6.35), (12.282617403, 6.121638598), (13.255887449, 5.471320344))
            Line((13.255887449, 5.471320344), (15.506192291, 3.221015502))
            ThreePointArc((15.506192291, 3.221015502), (15.686636446, 2.313861477), (14.917588398, 1.8))
            Line((14.917588398, 1.8), (12.79999999, 1.8))
            ThreePointArc((12.79999999, 1.8), (12.587867955, 1.712132034), (12.499999989, 1.499999999))
        make_face()
        with Locations((10, 10)):
            Circle(SKIZZE1_R, mode=Mode.SUBTRACT)
    extrude(amount=-AUFSATZ_LINEAR_AUSTRAGEN1_DEPTH)


solid = part.part
